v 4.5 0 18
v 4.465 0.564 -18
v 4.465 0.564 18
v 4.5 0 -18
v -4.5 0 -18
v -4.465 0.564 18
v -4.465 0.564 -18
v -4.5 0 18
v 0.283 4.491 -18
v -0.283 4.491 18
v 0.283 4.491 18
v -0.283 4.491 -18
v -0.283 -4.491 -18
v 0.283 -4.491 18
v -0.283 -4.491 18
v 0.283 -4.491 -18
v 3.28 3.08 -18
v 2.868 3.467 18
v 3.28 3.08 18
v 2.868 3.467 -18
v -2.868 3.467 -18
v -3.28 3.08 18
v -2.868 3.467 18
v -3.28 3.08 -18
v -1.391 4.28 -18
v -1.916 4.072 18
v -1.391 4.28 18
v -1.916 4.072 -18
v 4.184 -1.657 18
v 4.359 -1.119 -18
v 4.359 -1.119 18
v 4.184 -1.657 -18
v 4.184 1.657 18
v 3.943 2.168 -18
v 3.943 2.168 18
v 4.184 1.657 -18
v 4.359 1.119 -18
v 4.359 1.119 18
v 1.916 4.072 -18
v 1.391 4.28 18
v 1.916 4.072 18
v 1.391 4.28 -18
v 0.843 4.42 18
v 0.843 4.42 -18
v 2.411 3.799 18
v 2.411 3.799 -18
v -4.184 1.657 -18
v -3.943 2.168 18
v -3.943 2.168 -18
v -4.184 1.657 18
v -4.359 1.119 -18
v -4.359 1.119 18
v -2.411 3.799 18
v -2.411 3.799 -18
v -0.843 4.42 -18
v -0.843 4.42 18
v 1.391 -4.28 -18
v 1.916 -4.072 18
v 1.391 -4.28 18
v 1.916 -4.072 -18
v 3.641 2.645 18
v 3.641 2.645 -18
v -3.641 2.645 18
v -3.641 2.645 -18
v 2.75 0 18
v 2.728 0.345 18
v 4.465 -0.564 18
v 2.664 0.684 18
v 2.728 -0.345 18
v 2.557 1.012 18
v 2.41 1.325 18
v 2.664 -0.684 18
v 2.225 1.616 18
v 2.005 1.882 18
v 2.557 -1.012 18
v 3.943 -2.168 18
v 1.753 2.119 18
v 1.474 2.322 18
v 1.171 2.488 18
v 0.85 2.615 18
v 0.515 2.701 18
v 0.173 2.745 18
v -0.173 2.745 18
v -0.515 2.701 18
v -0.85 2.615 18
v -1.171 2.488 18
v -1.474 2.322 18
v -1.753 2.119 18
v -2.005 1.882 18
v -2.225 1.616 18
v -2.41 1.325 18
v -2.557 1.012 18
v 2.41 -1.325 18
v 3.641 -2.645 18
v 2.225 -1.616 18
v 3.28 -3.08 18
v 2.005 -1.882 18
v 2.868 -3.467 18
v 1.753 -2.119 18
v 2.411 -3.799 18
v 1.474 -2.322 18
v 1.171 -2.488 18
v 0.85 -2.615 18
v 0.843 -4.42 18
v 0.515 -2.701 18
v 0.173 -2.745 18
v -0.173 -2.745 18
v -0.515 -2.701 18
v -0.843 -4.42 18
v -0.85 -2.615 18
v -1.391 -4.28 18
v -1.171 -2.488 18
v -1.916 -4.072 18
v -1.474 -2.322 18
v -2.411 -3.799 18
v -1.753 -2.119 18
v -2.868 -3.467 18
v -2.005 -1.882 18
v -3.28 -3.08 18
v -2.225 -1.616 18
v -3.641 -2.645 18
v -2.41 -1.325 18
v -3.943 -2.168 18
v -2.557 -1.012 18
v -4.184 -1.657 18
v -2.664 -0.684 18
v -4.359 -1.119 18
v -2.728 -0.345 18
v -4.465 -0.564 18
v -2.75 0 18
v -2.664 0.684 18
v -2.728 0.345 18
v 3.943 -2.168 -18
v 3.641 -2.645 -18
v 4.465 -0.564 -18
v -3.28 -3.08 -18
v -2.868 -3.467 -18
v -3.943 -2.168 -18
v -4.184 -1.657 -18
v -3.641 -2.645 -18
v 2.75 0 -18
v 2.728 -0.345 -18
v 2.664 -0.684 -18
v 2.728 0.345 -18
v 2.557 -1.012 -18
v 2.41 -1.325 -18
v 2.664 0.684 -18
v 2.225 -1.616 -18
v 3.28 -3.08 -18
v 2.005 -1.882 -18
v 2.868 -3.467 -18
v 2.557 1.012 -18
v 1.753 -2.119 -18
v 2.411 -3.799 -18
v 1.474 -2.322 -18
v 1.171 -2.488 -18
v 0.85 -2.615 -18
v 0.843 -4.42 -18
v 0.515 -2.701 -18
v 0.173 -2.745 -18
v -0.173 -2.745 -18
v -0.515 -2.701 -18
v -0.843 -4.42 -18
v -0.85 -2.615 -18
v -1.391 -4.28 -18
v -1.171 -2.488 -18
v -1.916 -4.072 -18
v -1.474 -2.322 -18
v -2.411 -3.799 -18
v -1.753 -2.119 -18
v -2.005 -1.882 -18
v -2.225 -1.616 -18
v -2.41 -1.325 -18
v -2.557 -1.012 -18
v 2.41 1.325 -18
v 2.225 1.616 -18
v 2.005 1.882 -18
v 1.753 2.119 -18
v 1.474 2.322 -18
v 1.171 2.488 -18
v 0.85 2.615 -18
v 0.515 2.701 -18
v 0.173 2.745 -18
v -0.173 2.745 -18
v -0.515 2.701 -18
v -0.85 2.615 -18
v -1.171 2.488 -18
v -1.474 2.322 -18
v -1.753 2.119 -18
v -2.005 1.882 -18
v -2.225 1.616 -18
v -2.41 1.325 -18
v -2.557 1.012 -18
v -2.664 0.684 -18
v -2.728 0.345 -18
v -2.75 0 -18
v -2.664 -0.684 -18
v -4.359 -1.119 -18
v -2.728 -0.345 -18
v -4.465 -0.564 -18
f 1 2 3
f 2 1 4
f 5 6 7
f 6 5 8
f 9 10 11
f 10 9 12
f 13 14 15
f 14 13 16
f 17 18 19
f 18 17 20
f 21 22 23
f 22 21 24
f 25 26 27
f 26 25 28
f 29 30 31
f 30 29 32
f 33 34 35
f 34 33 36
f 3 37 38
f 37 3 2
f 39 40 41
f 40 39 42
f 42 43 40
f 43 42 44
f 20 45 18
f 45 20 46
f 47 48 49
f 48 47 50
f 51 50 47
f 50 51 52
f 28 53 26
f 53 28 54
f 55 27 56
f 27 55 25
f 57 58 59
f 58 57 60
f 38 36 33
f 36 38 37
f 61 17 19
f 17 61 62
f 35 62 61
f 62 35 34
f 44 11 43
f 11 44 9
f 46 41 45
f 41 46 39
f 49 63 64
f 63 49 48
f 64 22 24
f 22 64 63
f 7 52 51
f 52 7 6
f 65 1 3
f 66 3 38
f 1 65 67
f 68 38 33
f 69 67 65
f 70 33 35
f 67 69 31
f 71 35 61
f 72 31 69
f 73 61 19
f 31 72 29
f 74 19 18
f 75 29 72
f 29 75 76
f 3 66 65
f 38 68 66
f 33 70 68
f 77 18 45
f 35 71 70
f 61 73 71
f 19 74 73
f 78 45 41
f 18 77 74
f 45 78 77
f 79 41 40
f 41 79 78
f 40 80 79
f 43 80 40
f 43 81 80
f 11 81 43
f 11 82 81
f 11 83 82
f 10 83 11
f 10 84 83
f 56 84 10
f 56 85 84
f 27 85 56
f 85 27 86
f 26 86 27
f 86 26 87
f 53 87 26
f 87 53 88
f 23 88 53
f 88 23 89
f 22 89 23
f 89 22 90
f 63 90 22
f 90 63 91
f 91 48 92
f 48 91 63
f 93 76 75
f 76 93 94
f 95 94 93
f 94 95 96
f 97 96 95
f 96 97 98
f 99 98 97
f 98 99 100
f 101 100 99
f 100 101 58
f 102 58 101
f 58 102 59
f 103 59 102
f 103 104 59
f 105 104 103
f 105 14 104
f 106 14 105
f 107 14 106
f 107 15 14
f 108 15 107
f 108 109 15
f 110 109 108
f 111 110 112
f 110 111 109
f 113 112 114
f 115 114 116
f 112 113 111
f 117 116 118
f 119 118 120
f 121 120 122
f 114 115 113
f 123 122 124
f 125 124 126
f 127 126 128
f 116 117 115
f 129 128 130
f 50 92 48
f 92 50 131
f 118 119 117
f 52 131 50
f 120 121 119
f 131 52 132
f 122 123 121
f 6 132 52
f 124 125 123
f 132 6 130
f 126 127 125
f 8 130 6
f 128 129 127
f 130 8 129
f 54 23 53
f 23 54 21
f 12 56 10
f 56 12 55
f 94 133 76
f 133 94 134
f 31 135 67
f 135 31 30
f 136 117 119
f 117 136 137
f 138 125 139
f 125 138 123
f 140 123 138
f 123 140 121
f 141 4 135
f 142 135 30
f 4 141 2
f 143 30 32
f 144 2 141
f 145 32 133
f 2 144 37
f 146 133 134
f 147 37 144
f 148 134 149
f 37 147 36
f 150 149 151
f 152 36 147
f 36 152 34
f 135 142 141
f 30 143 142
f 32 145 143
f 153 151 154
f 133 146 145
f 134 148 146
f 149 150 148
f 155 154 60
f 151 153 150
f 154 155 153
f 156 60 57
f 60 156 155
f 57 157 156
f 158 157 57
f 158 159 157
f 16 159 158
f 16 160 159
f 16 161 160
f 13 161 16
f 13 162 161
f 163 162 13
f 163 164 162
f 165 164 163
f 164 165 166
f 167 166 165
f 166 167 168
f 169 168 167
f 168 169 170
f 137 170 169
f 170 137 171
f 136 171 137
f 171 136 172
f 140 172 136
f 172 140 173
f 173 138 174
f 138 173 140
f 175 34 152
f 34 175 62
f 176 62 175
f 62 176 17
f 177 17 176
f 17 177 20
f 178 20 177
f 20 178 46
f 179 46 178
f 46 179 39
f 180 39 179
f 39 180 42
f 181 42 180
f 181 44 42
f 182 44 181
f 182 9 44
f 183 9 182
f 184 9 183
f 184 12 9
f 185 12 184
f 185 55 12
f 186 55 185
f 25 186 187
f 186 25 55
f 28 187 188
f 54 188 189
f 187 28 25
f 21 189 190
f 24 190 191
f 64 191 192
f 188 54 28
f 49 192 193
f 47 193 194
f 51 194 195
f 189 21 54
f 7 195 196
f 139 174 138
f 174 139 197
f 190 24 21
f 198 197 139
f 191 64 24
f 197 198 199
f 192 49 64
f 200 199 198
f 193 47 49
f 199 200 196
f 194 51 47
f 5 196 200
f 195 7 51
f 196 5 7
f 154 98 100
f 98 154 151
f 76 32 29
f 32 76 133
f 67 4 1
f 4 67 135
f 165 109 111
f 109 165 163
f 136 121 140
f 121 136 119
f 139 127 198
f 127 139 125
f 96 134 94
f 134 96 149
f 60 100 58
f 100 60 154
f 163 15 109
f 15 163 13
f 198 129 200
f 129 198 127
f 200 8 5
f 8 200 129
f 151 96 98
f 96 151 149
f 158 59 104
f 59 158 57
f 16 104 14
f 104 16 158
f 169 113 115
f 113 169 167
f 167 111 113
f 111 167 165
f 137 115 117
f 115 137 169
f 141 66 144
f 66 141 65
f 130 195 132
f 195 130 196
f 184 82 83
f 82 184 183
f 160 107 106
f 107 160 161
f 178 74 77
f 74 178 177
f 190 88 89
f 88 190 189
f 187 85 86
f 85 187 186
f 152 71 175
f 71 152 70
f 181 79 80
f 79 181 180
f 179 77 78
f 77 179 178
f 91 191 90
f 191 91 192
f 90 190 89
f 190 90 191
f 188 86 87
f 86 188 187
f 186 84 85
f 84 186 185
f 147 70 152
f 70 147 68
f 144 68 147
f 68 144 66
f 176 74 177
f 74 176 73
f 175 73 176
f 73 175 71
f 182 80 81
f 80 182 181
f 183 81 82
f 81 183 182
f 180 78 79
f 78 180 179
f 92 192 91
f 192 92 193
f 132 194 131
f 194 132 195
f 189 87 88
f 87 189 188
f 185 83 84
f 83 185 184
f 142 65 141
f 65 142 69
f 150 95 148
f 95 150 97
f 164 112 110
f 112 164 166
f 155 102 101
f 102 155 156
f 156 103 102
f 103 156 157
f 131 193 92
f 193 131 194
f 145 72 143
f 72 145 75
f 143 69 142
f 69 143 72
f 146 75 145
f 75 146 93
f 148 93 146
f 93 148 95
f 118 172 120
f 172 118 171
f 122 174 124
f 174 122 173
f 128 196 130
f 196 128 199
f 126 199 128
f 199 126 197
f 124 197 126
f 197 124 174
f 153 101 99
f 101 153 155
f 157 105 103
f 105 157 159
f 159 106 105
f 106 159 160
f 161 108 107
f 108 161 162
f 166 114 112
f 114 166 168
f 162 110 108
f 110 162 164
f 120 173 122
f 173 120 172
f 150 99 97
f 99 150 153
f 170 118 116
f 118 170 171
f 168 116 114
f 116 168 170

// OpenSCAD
$fn = 50;


difference() {
	union() {
		translate(v = [0, 0, -18.0000000000]) {
			cylinder(h = 36, r = 4.5000000000);
		}
	}
	union() {
		translate(v = [0, 0, -100.0000000000]) {
			cylinder(h = 200, r = 2.7500000000);
		}
	}
}
